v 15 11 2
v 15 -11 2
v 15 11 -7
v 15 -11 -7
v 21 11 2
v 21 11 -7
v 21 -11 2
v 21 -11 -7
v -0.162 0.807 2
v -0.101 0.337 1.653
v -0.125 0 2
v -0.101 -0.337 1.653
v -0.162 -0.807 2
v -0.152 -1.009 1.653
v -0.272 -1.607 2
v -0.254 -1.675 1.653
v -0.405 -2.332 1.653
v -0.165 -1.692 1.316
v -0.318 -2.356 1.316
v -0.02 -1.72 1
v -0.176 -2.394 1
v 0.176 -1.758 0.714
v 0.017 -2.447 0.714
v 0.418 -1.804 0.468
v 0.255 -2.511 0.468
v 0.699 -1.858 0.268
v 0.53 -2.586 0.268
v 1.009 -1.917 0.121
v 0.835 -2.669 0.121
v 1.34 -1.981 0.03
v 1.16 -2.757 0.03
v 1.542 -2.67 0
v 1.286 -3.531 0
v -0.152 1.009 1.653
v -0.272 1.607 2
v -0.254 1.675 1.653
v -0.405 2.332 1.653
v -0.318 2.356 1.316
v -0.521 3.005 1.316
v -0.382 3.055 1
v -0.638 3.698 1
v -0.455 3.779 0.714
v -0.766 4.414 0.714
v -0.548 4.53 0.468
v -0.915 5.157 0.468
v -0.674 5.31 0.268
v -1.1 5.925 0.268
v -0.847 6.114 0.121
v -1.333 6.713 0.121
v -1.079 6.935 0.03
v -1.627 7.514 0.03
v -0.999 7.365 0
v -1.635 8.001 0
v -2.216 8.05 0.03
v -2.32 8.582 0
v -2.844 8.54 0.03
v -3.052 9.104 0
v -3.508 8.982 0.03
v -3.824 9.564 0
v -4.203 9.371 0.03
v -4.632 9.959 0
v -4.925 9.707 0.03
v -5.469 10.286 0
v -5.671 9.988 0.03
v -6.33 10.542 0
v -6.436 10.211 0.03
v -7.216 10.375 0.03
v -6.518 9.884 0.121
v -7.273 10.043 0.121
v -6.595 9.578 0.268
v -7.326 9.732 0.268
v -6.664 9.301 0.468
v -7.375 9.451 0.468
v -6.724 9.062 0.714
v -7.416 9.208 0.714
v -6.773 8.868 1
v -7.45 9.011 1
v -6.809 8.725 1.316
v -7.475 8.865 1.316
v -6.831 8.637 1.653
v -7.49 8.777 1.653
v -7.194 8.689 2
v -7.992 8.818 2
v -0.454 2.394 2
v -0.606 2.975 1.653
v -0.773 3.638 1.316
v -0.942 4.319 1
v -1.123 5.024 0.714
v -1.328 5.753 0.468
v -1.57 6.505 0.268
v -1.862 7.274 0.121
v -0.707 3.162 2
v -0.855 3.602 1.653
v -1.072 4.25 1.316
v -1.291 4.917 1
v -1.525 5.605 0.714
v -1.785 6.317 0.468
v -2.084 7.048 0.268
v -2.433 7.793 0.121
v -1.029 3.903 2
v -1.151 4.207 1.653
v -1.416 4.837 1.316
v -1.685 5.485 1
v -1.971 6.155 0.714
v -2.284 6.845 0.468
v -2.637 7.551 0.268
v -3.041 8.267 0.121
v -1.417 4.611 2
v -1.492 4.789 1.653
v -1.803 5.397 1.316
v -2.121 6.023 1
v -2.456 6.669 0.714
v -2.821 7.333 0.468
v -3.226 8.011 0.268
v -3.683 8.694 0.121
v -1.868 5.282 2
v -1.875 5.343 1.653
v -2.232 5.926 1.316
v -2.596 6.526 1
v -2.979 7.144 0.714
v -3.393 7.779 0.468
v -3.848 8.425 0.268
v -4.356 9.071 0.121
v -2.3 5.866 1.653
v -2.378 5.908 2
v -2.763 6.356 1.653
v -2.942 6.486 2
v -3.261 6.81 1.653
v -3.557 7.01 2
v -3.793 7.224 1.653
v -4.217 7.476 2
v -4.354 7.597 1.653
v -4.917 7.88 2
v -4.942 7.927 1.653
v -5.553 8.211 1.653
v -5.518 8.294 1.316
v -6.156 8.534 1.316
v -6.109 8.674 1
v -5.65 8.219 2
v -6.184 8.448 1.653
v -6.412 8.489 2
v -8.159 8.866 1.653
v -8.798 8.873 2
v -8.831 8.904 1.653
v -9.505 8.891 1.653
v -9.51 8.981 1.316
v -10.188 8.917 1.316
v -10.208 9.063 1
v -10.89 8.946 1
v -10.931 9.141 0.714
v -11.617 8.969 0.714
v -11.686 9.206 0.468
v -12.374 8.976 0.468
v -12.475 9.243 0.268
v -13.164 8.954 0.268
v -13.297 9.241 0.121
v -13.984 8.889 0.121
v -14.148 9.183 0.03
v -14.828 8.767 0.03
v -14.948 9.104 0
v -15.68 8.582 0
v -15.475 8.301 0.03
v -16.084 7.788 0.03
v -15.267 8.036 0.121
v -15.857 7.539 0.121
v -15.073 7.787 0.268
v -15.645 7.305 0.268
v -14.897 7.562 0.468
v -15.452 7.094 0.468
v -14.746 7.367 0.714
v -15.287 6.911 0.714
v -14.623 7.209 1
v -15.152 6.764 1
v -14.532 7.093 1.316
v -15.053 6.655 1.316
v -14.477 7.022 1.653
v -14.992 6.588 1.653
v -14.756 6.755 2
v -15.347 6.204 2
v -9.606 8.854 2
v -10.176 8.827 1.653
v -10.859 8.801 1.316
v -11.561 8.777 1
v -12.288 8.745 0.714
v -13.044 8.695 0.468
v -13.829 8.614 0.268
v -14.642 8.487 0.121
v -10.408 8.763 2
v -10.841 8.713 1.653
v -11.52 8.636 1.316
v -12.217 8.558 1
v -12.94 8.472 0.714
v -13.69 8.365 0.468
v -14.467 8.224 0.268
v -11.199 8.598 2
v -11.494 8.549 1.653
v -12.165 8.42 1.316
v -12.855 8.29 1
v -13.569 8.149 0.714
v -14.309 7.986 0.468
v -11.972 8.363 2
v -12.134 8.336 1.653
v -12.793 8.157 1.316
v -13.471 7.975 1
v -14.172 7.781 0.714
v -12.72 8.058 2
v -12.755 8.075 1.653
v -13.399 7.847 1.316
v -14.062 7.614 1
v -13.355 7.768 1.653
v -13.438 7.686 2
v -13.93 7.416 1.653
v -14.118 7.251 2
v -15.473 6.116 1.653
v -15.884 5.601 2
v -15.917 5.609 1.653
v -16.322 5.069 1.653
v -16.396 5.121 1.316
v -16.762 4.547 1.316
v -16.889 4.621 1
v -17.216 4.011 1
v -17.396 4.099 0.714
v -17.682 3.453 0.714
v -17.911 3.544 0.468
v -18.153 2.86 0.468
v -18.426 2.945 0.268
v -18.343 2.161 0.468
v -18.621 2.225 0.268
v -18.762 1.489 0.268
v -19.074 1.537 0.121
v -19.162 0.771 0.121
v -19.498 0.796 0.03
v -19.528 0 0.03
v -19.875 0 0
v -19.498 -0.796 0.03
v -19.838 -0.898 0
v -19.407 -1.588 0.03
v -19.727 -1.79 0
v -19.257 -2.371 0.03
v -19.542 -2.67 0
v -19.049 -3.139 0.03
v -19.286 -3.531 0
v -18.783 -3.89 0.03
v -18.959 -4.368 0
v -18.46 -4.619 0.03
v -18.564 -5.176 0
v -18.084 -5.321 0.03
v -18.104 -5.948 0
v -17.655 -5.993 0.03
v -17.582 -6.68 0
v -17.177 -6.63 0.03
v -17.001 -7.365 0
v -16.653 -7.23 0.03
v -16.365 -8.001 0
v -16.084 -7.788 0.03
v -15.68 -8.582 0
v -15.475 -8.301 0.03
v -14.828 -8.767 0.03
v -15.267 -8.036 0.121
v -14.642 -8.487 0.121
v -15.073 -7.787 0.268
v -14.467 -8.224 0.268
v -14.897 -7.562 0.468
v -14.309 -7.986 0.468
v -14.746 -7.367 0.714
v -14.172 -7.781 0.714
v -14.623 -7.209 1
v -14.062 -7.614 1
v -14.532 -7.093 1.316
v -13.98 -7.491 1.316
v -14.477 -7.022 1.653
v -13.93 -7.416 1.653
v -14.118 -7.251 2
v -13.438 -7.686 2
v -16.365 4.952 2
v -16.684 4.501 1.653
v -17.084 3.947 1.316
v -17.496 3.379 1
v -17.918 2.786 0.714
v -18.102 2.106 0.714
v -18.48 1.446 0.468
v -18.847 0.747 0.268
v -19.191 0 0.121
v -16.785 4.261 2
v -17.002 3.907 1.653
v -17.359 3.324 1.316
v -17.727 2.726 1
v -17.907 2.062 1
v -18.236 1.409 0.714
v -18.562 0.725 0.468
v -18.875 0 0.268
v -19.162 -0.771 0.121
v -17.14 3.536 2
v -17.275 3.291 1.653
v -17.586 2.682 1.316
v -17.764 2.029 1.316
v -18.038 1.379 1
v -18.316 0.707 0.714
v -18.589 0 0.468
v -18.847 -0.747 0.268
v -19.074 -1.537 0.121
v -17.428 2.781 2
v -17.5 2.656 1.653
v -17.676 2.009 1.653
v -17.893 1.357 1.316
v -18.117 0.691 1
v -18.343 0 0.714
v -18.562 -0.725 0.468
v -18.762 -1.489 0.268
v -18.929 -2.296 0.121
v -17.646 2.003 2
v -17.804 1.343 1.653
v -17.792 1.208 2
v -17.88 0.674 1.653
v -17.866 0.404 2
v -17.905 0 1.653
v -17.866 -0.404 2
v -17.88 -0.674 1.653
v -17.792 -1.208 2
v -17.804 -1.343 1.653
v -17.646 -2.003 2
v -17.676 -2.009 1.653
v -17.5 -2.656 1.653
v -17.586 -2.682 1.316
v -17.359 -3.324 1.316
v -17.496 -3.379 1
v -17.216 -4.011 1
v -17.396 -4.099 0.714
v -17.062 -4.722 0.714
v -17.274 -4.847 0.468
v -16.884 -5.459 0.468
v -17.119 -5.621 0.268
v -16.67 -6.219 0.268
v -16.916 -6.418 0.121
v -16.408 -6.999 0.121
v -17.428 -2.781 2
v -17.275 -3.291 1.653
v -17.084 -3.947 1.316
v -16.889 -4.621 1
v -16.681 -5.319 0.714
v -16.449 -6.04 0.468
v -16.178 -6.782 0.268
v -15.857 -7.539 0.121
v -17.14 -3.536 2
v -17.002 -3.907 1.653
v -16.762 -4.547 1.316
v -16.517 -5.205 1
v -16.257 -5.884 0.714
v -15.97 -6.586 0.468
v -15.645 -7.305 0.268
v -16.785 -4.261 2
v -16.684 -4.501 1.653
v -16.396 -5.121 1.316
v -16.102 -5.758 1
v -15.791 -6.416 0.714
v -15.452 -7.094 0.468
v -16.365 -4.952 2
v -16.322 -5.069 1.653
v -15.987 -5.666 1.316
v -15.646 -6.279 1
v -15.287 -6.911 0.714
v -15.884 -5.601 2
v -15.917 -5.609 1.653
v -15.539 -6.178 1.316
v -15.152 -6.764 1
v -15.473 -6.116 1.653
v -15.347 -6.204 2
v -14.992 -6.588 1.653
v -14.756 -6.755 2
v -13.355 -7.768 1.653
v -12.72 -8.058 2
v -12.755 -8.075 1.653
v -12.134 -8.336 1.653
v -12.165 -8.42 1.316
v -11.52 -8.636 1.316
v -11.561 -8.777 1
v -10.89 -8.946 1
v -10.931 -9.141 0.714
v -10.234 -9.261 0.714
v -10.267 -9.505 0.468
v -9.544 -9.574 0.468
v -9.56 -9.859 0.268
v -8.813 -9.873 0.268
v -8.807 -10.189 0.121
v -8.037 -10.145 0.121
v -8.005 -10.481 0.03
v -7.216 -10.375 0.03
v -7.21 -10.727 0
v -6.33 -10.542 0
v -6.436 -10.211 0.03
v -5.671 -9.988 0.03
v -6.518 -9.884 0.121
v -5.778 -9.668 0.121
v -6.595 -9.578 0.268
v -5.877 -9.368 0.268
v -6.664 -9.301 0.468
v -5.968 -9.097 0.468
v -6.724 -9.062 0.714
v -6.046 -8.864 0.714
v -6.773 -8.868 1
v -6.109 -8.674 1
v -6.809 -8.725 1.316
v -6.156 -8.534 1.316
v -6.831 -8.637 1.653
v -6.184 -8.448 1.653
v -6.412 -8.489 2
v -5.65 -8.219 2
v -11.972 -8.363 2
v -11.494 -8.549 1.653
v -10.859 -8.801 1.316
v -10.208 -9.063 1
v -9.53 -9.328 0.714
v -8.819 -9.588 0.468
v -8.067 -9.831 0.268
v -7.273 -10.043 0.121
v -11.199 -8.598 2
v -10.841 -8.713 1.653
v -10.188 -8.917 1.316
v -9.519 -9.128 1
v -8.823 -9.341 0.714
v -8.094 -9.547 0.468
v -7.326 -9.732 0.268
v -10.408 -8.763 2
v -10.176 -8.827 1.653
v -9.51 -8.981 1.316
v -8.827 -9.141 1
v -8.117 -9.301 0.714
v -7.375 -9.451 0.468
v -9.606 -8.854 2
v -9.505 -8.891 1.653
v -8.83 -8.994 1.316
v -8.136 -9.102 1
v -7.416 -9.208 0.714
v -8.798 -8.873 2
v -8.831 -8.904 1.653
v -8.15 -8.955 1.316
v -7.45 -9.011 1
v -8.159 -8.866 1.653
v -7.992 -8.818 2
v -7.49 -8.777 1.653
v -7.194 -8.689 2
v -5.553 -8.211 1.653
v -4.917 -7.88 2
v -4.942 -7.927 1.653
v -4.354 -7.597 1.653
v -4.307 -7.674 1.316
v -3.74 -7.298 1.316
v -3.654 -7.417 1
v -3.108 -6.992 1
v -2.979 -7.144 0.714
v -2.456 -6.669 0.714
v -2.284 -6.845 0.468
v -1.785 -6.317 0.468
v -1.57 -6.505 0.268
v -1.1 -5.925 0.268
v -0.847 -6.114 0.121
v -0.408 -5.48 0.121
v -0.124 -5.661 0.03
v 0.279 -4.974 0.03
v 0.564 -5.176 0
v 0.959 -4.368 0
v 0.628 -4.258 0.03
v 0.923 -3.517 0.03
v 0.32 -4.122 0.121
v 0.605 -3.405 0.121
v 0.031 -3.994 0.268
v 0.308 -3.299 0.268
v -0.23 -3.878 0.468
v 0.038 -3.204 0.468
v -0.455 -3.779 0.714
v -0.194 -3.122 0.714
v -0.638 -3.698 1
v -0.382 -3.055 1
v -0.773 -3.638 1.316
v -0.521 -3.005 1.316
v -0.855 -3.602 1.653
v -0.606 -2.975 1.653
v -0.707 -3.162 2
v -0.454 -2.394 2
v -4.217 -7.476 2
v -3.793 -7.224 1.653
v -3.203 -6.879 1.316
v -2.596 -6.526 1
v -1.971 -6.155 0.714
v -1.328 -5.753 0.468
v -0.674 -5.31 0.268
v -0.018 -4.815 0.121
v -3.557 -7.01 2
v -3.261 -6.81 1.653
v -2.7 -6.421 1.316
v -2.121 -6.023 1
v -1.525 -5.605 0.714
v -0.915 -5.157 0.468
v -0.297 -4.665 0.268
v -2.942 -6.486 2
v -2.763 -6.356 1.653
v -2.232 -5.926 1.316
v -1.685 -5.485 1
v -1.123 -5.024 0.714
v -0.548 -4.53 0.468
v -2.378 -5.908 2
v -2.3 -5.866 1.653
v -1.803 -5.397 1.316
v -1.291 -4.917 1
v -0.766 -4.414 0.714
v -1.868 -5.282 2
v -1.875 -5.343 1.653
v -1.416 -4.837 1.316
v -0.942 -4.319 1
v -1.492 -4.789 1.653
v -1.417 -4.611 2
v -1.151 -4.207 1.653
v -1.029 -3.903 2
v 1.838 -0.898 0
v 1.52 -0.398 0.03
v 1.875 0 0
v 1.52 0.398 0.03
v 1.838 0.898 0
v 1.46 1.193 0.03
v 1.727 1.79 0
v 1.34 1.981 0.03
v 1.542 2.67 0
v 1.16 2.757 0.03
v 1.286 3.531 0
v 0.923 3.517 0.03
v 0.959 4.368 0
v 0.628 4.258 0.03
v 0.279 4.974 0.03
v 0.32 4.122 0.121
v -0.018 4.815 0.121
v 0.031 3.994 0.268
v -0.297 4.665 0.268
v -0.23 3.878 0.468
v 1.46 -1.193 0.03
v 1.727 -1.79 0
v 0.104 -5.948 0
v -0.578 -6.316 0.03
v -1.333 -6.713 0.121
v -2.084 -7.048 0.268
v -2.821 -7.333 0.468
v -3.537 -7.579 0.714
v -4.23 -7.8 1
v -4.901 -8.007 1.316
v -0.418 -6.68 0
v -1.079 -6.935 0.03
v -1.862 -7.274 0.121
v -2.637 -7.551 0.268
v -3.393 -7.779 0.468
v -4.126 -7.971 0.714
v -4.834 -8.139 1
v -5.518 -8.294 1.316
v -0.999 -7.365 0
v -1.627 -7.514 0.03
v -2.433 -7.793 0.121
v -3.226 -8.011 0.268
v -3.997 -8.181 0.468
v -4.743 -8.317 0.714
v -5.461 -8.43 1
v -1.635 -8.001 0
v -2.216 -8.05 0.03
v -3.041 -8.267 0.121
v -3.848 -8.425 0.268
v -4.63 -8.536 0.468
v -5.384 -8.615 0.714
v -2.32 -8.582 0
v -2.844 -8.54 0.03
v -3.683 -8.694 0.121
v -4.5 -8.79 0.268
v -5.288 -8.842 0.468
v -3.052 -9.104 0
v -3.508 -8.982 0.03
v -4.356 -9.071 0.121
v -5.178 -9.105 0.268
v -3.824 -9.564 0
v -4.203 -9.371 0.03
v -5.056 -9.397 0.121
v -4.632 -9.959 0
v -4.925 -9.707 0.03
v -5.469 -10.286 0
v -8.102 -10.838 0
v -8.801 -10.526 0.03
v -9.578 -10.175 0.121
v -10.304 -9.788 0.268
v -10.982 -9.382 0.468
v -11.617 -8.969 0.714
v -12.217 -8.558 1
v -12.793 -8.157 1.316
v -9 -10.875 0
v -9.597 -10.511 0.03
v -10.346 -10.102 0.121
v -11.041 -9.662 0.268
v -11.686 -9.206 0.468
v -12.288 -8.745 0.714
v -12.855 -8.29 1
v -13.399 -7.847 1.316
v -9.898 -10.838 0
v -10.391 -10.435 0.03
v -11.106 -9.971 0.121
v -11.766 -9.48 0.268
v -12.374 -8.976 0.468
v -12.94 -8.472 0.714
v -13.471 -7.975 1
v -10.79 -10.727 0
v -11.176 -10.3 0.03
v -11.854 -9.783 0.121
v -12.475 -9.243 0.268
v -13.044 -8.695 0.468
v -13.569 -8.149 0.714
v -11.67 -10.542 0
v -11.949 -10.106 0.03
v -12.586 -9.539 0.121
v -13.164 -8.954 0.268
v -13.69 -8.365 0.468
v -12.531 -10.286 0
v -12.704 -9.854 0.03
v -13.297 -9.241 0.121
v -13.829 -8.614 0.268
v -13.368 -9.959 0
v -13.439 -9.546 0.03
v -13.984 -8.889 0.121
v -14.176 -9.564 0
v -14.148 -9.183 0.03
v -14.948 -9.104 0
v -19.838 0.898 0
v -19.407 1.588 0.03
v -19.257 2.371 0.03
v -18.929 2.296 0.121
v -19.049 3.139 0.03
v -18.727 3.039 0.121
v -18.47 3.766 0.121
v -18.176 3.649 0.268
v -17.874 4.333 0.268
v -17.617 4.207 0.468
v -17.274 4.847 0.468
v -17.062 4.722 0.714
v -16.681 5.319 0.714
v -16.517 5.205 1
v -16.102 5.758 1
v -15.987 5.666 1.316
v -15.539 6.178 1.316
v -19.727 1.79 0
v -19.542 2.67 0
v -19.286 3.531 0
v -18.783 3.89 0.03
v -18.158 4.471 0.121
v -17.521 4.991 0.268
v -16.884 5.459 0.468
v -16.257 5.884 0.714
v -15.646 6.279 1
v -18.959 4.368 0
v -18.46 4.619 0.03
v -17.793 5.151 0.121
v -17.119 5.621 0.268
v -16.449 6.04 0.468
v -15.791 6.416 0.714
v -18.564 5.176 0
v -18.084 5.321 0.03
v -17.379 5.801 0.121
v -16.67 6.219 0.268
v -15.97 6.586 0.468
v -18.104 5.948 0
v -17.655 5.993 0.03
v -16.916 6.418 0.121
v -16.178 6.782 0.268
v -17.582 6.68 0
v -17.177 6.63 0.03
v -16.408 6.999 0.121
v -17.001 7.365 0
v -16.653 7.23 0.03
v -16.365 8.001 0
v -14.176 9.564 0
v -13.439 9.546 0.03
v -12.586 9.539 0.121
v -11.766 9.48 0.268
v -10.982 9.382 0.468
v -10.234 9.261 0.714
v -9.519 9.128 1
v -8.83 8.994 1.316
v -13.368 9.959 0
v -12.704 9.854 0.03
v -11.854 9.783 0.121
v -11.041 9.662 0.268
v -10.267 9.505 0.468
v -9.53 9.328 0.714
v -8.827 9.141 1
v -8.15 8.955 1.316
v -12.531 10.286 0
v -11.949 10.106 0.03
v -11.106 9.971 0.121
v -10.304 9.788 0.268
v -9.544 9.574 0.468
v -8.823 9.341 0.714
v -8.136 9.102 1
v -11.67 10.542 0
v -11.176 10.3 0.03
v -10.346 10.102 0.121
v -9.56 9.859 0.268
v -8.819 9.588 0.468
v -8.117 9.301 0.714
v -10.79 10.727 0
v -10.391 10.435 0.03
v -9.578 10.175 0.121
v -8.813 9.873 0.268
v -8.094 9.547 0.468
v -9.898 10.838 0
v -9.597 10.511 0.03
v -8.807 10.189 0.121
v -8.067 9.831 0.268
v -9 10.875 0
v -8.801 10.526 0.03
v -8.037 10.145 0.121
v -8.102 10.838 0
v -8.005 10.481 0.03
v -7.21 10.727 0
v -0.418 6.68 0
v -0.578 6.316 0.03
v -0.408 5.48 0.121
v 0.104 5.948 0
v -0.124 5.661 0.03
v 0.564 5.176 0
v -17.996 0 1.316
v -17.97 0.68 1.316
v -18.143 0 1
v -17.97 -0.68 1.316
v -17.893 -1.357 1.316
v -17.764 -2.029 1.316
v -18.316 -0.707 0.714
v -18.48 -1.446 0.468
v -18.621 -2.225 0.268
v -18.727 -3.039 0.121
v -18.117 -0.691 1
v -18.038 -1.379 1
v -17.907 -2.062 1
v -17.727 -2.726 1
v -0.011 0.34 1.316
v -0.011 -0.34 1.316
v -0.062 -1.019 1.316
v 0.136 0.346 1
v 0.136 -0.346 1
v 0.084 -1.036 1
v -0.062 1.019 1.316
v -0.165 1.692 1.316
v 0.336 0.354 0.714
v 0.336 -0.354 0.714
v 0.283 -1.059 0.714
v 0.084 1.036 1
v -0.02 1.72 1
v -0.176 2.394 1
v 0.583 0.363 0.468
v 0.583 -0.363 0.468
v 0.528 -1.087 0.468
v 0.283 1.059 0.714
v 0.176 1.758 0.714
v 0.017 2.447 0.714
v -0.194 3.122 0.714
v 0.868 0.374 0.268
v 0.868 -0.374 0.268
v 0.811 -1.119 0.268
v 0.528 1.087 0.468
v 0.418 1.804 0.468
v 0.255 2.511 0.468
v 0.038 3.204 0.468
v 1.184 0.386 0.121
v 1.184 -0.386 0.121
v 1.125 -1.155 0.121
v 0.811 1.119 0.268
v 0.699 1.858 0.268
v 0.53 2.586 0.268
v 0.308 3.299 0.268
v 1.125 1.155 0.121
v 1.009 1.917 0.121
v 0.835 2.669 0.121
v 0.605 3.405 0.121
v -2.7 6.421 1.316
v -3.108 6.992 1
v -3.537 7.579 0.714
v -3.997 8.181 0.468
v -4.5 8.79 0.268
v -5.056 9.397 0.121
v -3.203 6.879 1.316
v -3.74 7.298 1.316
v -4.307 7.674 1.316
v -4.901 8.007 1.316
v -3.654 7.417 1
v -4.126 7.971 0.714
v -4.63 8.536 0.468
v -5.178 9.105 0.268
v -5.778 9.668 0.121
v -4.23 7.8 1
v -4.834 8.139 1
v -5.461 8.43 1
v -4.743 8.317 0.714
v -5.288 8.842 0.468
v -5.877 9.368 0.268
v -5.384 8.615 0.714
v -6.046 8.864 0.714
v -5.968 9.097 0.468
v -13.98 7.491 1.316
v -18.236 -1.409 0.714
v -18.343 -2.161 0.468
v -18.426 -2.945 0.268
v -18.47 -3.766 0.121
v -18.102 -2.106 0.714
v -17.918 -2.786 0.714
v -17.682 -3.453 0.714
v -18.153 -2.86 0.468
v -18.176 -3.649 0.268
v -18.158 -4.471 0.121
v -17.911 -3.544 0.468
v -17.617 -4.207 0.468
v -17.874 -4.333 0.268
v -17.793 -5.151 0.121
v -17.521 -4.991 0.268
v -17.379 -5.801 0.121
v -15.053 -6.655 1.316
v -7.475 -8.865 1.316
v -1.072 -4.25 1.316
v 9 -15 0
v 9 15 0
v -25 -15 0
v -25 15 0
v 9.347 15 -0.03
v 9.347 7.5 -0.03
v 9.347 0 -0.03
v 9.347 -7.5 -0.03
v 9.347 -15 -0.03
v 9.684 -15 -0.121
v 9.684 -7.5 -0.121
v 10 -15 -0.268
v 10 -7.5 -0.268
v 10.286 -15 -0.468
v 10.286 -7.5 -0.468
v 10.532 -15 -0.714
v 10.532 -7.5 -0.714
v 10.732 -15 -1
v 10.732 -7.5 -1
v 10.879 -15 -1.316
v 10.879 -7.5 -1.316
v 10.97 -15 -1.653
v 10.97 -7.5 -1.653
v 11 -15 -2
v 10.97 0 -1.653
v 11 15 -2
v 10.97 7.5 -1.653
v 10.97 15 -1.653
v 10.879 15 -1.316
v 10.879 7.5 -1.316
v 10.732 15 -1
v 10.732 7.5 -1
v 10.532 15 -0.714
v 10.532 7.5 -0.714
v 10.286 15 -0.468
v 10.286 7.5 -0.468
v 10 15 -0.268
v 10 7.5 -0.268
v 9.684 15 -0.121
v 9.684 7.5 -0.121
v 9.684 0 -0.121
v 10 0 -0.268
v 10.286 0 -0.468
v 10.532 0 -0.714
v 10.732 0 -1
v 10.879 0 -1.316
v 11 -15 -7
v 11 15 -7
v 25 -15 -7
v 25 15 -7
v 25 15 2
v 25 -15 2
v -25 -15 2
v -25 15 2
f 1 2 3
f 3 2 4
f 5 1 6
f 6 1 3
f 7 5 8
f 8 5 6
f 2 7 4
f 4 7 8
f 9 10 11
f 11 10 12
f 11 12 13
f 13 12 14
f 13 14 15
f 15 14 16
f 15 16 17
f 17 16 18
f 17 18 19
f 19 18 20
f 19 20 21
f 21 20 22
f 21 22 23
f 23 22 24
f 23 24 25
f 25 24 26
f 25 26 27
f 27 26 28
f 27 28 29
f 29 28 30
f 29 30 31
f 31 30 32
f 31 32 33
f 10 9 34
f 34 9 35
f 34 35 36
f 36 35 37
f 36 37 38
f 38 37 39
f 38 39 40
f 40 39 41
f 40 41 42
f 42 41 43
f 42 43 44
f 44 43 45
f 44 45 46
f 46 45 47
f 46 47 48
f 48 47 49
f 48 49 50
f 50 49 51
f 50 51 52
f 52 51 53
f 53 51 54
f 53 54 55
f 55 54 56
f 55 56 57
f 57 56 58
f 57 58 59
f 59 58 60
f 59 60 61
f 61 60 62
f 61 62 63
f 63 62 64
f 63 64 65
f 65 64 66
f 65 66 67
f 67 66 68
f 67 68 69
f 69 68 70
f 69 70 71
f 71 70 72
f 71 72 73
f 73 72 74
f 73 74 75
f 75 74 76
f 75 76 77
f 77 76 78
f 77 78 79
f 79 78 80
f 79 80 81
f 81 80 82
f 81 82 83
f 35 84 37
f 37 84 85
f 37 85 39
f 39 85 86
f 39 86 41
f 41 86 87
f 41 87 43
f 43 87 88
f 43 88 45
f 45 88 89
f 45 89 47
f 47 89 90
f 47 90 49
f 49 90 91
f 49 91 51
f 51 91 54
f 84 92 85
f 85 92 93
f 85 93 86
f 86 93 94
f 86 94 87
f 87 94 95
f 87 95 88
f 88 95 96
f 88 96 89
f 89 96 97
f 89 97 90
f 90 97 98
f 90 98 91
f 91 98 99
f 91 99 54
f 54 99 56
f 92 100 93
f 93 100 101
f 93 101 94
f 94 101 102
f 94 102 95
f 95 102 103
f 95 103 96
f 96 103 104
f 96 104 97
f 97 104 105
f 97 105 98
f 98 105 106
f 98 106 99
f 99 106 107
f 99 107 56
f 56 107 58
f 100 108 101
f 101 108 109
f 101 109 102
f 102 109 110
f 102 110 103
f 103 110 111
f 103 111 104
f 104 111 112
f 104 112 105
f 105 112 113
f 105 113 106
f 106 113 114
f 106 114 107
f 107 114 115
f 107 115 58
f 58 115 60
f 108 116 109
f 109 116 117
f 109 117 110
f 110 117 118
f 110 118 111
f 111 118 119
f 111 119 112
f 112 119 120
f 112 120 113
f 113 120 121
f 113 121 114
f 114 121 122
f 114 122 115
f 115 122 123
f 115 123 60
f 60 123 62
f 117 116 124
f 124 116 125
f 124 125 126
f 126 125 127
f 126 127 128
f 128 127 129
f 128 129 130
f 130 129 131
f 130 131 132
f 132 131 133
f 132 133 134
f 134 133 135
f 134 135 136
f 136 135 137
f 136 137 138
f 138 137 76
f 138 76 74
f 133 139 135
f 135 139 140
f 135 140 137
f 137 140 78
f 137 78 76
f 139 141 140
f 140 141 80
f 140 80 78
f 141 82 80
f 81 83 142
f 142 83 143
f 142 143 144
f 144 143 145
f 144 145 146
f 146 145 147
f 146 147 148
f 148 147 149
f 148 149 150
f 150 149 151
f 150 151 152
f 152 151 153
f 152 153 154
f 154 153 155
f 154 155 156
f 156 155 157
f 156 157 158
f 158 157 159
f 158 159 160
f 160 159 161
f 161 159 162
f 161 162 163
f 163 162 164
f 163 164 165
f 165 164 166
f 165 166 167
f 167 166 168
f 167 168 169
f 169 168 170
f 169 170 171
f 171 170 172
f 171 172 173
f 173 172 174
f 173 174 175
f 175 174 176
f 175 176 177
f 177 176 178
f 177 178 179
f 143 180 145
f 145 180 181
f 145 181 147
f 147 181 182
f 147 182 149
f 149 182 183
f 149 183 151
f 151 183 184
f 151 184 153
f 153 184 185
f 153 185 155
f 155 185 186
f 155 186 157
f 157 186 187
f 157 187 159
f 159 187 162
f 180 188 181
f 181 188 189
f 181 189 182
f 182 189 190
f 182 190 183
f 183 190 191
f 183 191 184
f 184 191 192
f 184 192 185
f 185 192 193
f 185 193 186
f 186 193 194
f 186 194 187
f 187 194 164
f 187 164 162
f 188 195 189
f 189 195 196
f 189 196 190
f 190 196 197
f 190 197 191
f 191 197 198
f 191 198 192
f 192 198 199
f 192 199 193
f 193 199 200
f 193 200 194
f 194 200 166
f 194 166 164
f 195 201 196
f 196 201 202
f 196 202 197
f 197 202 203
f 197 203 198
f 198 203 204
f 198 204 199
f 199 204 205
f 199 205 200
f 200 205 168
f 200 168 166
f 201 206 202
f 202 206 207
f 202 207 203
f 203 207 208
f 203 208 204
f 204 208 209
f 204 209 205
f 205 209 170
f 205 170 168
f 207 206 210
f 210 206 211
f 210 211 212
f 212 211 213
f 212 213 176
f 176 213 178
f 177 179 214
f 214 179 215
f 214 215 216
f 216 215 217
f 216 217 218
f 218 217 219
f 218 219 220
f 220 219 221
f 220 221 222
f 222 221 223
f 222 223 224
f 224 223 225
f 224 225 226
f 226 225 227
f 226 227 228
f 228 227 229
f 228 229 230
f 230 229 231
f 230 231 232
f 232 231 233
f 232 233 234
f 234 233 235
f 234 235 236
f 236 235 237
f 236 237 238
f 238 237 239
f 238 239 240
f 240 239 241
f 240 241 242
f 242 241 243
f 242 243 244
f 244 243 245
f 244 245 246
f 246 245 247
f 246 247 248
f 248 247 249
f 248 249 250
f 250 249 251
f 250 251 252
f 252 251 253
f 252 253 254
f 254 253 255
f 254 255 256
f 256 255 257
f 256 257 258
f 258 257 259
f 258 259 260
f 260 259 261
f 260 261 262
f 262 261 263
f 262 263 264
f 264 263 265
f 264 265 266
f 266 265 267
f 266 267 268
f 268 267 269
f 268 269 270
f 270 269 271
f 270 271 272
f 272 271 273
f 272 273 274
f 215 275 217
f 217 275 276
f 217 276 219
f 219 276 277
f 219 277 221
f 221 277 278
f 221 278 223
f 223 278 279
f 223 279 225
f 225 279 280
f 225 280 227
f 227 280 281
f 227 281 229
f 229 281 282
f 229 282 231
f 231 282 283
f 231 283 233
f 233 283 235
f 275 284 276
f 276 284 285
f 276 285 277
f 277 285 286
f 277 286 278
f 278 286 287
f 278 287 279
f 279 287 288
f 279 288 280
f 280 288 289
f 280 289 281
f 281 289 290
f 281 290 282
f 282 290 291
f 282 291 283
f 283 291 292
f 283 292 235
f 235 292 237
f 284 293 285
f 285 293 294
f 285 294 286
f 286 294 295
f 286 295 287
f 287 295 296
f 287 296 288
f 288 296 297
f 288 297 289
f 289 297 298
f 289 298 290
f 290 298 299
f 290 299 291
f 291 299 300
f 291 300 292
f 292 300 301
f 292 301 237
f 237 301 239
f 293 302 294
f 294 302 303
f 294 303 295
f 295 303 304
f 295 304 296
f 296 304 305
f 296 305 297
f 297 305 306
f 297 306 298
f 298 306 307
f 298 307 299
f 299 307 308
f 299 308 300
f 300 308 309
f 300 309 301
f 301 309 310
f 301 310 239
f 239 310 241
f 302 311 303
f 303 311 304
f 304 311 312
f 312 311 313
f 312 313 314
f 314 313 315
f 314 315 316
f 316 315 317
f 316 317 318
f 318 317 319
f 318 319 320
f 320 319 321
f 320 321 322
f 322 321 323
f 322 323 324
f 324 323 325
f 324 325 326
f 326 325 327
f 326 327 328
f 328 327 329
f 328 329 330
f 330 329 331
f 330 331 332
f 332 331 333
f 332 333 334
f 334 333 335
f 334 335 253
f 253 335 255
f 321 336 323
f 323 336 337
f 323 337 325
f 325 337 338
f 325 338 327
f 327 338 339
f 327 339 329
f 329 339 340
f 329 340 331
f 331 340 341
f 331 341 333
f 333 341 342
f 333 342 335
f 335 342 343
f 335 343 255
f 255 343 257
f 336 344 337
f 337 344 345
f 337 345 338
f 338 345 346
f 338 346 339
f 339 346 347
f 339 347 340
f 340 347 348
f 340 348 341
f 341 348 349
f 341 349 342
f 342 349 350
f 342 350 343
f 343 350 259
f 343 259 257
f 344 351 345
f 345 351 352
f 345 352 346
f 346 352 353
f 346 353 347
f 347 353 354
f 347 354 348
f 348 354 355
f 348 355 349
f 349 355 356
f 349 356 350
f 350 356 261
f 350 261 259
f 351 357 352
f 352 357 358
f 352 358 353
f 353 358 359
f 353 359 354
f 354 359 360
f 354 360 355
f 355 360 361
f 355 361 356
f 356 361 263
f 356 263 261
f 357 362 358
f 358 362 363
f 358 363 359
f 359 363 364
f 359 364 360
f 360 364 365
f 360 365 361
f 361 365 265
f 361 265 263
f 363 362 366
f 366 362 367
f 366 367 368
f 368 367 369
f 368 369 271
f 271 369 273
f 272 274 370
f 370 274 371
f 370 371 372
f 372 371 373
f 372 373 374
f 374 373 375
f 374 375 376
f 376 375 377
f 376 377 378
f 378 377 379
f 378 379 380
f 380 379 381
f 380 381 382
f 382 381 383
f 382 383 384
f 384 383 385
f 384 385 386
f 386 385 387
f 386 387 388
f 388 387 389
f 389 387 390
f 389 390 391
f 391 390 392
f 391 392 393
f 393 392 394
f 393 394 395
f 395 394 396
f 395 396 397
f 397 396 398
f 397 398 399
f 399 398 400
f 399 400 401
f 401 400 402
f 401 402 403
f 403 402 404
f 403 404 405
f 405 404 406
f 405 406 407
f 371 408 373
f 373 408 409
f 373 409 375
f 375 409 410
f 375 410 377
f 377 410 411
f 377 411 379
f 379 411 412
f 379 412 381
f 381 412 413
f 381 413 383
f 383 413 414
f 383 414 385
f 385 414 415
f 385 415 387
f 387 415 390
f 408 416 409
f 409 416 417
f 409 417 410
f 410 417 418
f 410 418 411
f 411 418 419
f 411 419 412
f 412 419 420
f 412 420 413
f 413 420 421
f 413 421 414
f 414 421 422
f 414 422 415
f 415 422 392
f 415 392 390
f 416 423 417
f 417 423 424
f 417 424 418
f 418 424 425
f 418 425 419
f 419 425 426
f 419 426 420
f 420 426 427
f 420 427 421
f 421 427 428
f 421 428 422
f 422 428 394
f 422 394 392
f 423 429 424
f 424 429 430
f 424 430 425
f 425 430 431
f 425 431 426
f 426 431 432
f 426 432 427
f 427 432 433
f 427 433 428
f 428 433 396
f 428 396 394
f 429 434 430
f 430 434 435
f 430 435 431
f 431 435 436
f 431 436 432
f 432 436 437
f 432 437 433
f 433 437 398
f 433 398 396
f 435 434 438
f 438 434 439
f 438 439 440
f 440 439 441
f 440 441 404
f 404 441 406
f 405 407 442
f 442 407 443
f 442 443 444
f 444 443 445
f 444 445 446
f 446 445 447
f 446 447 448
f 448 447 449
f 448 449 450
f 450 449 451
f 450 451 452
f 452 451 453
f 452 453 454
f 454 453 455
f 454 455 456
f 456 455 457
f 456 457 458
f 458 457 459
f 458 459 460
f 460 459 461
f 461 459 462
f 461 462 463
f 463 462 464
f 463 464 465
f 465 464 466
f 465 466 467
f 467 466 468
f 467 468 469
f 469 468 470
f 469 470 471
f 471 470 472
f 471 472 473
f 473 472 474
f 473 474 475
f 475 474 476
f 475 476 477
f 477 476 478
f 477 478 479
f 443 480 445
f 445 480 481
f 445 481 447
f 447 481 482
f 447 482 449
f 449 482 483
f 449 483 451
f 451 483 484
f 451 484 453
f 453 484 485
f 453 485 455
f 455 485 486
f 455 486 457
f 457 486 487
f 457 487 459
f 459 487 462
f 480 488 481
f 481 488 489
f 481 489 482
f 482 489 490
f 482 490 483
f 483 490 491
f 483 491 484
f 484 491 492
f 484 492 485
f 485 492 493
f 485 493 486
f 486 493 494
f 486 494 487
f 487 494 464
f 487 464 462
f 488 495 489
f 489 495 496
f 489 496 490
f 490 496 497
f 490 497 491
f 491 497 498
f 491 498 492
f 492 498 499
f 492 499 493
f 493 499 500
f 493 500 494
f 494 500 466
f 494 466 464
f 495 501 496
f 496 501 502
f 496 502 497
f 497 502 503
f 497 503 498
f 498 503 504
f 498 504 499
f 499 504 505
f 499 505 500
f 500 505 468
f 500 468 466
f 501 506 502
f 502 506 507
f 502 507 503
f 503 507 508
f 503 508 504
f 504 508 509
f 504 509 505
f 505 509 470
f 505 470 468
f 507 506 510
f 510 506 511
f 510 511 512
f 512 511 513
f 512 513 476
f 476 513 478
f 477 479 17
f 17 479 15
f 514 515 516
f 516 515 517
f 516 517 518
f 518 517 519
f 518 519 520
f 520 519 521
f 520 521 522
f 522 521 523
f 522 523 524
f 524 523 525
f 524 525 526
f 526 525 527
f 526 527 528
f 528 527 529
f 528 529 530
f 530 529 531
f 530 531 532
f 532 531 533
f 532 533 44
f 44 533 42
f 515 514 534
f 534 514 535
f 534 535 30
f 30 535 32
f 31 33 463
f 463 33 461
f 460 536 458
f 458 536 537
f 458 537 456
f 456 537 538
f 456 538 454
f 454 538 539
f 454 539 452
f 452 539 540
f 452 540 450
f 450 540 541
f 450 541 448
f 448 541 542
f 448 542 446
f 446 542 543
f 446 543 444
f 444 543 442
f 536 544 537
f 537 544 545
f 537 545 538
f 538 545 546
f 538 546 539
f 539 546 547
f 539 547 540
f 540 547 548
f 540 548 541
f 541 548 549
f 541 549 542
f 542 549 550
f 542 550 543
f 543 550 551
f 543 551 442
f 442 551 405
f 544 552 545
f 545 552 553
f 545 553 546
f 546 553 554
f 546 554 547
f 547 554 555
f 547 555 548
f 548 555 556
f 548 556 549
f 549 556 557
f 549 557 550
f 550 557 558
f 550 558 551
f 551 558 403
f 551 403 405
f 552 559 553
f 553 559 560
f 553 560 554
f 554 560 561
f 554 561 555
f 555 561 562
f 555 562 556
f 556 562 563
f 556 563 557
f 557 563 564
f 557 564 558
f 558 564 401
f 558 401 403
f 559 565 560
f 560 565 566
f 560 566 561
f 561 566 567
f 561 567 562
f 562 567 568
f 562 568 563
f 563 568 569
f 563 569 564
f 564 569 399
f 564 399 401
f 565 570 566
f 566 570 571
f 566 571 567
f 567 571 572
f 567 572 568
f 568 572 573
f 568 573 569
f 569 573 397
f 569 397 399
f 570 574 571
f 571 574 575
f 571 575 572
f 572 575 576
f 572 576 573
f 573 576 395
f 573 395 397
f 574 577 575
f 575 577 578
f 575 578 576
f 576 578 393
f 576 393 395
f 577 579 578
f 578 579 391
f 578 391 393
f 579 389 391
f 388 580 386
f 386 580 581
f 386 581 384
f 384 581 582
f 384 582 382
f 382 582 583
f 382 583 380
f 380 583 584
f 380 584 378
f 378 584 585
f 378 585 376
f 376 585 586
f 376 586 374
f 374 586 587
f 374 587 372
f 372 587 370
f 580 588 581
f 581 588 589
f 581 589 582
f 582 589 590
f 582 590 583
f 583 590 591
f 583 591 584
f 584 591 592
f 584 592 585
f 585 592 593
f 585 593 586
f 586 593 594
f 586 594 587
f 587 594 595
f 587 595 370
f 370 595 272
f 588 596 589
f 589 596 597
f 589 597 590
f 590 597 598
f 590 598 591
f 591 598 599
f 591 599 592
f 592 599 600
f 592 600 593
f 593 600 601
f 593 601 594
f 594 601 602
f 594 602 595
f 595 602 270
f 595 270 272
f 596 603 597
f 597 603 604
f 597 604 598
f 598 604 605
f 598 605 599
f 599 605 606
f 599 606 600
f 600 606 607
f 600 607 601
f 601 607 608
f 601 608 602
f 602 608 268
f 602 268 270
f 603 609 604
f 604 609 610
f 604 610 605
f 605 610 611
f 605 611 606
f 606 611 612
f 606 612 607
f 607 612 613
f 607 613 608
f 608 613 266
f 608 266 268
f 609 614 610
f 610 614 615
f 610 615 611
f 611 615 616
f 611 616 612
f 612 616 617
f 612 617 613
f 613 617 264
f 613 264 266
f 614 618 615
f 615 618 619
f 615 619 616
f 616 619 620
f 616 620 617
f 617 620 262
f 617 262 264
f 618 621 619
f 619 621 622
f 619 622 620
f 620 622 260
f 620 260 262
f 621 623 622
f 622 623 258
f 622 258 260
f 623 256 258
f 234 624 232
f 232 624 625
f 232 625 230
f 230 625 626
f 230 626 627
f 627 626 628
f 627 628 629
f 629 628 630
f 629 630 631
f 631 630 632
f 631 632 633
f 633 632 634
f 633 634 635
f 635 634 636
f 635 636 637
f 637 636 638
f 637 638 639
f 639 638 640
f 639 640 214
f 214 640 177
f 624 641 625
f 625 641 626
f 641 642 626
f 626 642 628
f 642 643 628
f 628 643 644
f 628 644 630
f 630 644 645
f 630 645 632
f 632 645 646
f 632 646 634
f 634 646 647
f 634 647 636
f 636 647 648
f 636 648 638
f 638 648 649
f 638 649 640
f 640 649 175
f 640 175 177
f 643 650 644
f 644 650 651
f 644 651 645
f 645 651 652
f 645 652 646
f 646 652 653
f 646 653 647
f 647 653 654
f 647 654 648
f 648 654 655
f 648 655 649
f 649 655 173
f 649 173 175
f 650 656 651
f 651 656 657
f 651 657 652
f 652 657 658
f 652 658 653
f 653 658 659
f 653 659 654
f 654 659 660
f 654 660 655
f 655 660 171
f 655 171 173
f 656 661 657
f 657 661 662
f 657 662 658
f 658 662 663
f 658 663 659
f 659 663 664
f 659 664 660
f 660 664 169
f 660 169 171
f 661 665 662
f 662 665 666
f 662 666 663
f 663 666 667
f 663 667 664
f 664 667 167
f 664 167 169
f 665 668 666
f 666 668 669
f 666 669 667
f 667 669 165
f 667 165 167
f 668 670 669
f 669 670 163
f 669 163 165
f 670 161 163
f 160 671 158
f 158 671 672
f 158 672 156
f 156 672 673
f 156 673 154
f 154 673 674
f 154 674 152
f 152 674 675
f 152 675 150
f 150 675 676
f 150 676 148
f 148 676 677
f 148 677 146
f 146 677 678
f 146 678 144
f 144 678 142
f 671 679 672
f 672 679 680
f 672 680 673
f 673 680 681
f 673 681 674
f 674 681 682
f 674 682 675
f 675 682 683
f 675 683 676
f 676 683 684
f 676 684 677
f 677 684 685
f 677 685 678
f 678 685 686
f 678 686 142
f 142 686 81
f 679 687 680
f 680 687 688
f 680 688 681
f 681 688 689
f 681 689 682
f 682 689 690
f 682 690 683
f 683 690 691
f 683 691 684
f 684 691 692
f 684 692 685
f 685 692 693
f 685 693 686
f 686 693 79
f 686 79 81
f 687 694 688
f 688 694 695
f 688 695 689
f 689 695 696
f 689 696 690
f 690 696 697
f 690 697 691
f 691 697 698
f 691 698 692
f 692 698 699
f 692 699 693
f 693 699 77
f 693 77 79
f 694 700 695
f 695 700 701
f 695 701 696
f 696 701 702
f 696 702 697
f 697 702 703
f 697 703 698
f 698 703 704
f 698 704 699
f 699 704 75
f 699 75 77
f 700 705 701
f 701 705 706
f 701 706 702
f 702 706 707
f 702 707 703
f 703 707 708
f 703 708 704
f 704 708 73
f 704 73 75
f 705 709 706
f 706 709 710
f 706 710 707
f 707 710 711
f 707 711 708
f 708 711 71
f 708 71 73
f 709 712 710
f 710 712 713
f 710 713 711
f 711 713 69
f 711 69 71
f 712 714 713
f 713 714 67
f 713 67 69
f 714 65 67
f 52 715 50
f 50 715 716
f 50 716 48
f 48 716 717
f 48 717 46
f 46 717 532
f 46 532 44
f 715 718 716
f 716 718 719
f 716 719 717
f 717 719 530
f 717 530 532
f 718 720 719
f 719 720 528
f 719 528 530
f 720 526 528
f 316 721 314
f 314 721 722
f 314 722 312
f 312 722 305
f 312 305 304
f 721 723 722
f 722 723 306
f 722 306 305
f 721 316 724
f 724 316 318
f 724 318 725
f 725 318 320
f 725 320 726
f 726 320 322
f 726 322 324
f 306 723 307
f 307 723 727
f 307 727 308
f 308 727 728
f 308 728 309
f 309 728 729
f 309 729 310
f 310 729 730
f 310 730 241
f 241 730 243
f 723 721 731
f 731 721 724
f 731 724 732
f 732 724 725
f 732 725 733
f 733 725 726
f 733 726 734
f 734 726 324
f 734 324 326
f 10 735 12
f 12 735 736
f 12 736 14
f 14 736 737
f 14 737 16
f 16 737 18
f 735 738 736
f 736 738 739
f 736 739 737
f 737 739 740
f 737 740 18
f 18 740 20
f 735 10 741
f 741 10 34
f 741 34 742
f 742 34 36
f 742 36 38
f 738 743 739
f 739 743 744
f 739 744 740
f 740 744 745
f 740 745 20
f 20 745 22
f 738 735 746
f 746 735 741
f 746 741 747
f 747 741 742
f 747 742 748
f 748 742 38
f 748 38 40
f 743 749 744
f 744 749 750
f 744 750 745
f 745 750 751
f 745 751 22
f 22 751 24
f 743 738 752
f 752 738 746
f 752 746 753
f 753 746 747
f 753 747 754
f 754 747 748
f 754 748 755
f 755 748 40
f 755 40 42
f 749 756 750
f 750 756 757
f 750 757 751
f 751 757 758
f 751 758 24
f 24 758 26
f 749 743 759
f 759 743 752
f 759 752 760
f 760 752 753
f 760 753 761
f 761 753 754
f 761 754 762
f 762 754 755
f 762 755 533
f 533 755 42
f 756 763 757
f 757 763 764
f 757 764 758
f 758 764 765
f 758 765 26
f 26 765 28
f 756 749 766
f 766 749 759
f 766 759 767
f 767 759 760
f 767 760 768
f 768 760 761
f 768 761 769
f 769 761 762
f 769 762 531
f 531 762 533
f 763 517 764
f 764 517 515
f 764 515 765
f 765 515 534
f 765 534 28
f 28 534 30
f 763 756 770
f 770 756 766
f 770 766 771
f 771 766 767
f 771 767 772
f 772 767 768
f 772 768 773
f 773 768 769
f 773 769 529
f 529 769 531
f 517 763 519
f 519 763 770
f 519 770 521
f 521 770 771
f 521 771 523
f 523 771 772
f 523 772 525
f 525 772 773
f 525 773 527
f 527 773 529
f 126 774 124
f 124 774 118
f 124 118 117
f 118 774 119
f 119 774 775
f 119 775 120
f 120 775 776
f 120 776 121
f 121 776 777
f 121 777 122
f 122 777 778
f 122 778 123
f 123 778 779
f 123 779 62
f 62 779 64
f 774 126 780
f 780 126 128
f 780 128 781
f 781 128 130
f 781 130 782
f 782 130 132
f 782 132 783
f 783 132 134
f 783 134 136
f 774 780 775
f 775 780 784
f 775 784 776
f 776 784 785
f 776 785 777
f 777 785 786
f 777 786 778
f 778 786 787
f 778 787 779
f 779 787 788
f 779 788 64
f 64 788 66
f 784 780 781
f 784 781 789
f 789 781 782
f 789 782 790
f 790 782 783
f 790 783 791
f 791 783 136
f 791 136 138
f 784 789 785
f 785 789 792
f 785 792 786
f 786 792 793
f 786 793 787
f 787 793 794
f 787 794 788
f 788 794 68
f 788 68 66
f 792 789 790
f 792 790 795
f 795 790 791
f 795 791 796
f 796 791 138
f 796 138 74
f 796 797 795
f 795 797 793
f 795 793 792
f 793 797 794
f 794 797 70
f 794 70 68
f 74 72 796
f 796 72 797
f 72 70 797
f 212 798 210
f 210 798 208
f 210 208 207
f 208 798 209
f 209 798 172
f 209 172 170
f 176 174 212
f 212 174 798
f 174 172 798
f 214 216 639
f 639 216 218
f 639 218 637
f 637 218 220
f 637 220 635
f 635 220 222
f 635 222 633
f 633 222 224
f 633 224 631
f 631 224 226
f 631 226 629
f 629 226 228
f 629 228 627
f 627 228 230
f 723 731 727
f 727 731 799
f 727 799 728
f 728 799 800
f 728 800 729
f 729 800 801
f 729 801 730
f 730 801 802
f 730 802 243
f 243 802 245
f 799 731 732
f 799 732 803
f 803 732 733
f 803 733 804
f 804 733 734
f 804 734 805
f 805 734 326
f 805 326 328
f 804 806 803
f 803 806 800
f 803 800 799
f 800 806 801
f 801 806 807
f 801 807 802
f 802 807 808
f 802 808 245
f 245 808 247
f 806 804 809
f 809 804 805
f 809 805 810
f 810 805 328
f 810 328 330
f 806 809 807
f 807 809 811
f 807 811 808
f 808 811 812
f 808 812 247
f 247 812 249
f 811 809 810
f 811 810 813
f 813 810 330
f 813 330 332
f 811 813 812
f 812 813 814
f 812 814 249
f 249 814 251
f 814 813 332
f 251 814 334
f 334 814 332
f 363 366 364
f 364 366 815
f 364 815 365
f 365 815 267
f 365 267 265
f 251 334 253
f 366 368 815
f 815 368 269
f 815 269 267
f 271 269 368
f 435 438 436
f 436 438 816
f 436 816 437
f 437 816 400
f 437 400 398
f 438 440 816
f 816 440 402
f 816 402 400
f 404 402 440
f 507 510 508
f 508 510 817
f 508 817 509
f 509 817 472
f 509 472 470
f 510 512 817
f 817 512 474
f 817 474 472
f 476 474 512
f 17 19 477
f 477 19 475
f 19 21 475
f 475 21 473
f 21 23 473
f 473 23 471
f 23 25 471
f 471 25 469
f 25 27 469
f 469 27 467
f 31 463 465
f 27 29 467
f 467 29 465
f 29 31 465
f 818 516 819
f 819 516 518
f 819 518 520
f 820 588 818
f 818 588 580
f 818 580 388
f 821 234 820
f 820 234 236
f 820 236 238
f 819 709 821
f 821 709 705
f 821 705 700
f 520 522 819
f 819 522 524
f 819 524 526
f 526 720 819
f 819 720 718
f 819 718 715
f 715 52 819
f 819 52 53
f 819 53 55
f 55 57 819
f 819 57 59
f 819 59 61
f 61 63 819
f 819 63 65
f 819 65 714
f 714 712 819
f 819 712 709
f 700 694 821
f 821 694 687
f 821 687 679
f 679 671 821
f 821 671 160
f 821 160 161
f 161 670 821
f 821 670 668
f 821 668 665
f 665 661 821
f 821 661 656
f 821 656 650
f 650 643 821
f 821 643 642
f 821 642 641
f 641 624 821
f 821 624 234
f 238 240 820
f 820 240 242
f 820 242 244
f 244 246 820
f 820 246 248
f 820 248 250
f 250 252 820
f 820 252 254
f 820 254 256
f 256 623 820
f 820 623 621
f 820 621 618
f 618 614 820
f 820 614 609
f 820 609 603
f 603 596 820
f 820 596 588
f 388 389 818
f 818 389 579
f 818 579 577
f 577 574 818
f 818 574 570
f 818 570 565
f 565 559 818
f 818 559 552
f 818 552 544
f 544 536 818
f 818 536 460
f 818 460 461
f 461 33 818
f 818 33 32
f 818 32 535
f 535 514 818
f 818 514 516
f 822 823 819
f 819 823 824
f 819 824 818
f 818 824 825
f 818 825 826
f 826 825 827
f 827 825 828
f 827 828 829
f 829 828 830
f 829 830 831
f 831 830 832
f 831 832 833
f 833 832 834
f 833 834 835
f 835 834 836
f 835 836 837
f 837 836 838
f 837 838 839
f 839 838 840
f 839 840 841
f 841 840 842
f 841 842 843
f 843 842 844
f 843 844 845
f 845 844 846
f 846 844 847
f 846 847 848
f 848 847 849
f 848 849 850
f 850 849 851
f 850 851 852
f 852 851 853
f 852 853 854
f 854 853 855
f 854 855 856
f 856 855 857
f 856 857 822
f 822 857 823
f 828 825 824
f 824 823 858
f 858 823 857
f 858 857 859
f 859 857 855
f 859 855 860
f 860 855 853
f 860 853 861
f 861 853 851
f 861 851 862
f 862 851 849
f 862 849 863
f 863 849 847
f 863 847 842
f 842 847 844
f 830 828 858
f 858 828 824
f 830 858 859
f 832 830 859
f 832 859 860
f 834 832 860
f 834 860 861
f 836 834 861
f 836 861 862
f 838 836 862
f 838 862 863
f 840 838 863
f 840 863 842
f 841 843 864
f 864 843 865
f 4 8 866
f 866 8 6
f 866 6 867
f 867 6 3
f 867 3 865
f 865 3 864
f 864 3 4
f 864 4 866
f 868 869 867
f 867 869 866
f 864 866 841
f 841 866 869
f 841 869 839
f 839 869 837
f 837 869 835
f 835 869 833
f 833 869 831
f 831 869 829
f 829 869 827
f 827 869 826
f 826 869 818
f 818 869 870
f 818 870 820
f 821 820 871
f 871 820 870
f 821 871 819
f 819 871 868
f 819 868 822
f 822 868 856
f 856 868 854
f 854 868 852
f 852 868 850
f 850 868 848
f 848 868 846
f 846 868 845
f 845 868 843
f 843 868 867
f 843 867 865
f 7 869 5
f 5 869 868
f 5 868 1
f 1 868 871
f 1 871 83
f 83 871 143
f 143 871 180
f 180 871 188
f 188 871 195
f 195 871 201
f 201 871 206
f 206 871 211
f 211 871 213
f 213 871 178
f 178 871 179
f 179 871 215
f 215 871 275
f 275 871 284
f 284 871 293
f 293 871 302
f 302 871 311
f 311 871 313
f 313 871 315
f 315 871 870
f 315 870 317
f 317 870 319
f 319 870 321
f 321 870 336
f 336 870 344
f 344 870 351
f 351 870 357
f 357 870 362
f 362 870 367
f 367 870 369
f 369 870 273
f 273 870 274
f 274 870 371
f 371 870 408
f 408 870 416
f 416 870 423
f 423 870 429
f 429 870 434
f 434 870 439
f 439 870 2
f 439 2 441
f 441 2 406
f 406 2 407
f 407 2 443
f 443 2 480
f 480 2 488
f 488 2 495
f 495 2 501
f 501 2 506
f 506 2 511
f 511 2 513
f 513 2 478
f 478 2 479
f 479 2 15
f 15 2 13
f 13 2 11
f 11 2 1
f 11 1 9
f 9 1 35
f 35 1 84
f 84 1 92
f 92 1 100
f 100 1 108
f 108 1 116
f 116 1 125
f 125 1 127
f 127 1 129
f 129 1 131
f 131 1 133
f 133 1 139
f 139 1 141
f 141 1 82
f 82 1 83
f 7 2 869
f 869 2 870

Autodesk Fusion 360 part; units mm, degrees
sketch "Sketch2" plane through (0, 0, 0) normal (0, 0, 1) x (1, 0, 0)
  line L0 (25, -15) -> (-25, -15)
  line L1 (-25, -15) -> (-25, 15)
  line L2 (-25, 15) -> (25, 15)
  line L3 (25, 15) -> (25, -15)
  line L4 (25, -15) -> (-25, 15) construction
  line L5 (-25, -15) -> (25, 15) construction
  dimension "d3" = 50
  dimension "d4" = 30
extrude "Extrude1" add sketch "Sketch2" along normal blind 2
sketch "Sketch3" plane through (0, 0, 2) normal (0, 0, 1) x (-1, 0, 0)
  line L0 (-25, -15) -> (25, -15)
  line L1 (25, -15) -> (25, 15)
  line L2 (25, 15) -> (-25, 15)
  line L3 (-25, 15) -> (-25, -15)
  circle A0 centre (9, 0) radius 8.875
  circle A1 centre (9, 0) radius 12
  dimension "d7" = 17.75
  dimension "d8" = 24
  dimension "d9" = 16
extrude "Extrude2" cut sketch "Sketch3" against normal blind 4 contours A0
sketch "Sketch4" plane through (0, 0, 0) normal (0, 0, -1) x (1, 0, 0)
  circle A0 centre (-9, 0) radius 8.875
  line L0 (-25, -15) -> (25, -15)
  line L1 (25, -15) -> (25, 15)
  line L2 (25, 15) -> (-25, 15)
  line L3 (-25, 15) -> (-25, -15)
  line L4 (25, 15) -> (11, 15)
  line L5 (11, 15) -> (11, -15)
  line L6 (11, -15) -> (25, -15)
  line L7 (25, -15) -> (25, 15)
  dimension "d12" = 14
extrude "Extrude3" add sketch "Sketch4" along normal blind 7 contours L0 L1 L2 L4 L5 L6 L7
fillet "Fillet1" radius 2 1 edges at (11, 0, 0)
fillet "Fillet2" radius 2 1 edges at (-0.7256, 3.2093, 0)
sketch "Sketch5" plane through (0, 0, -7) normal (0, 0, -1) x (1, 0, 0)
  line L0 (25, -15) -> (25, 15)
  line L1 (25, 15) -> (11, 15)
  line L2 (11, 15) -> (11, -15)
  line L3 (11, -15) -> (25, -15)
  line L4 (15, 11) -> (21, 11)
  line L5 (21, 11) -> (21, -11)
  line L6 (21, -11) -> (15, -11)
  line L7 (15, -11) -> (15, 11)
  dimension "d19" = 4
  dimension "d20" = 4
  dimension "d21" = 4
  dimension "d22" = 4
extrude "Extrude4" cut sketch "Sketch5" against normal blind 17 contours L4 L5 L6 L7
equation "d20 = d19"
equation "d21 = d19"
equation "d22 = d19"
